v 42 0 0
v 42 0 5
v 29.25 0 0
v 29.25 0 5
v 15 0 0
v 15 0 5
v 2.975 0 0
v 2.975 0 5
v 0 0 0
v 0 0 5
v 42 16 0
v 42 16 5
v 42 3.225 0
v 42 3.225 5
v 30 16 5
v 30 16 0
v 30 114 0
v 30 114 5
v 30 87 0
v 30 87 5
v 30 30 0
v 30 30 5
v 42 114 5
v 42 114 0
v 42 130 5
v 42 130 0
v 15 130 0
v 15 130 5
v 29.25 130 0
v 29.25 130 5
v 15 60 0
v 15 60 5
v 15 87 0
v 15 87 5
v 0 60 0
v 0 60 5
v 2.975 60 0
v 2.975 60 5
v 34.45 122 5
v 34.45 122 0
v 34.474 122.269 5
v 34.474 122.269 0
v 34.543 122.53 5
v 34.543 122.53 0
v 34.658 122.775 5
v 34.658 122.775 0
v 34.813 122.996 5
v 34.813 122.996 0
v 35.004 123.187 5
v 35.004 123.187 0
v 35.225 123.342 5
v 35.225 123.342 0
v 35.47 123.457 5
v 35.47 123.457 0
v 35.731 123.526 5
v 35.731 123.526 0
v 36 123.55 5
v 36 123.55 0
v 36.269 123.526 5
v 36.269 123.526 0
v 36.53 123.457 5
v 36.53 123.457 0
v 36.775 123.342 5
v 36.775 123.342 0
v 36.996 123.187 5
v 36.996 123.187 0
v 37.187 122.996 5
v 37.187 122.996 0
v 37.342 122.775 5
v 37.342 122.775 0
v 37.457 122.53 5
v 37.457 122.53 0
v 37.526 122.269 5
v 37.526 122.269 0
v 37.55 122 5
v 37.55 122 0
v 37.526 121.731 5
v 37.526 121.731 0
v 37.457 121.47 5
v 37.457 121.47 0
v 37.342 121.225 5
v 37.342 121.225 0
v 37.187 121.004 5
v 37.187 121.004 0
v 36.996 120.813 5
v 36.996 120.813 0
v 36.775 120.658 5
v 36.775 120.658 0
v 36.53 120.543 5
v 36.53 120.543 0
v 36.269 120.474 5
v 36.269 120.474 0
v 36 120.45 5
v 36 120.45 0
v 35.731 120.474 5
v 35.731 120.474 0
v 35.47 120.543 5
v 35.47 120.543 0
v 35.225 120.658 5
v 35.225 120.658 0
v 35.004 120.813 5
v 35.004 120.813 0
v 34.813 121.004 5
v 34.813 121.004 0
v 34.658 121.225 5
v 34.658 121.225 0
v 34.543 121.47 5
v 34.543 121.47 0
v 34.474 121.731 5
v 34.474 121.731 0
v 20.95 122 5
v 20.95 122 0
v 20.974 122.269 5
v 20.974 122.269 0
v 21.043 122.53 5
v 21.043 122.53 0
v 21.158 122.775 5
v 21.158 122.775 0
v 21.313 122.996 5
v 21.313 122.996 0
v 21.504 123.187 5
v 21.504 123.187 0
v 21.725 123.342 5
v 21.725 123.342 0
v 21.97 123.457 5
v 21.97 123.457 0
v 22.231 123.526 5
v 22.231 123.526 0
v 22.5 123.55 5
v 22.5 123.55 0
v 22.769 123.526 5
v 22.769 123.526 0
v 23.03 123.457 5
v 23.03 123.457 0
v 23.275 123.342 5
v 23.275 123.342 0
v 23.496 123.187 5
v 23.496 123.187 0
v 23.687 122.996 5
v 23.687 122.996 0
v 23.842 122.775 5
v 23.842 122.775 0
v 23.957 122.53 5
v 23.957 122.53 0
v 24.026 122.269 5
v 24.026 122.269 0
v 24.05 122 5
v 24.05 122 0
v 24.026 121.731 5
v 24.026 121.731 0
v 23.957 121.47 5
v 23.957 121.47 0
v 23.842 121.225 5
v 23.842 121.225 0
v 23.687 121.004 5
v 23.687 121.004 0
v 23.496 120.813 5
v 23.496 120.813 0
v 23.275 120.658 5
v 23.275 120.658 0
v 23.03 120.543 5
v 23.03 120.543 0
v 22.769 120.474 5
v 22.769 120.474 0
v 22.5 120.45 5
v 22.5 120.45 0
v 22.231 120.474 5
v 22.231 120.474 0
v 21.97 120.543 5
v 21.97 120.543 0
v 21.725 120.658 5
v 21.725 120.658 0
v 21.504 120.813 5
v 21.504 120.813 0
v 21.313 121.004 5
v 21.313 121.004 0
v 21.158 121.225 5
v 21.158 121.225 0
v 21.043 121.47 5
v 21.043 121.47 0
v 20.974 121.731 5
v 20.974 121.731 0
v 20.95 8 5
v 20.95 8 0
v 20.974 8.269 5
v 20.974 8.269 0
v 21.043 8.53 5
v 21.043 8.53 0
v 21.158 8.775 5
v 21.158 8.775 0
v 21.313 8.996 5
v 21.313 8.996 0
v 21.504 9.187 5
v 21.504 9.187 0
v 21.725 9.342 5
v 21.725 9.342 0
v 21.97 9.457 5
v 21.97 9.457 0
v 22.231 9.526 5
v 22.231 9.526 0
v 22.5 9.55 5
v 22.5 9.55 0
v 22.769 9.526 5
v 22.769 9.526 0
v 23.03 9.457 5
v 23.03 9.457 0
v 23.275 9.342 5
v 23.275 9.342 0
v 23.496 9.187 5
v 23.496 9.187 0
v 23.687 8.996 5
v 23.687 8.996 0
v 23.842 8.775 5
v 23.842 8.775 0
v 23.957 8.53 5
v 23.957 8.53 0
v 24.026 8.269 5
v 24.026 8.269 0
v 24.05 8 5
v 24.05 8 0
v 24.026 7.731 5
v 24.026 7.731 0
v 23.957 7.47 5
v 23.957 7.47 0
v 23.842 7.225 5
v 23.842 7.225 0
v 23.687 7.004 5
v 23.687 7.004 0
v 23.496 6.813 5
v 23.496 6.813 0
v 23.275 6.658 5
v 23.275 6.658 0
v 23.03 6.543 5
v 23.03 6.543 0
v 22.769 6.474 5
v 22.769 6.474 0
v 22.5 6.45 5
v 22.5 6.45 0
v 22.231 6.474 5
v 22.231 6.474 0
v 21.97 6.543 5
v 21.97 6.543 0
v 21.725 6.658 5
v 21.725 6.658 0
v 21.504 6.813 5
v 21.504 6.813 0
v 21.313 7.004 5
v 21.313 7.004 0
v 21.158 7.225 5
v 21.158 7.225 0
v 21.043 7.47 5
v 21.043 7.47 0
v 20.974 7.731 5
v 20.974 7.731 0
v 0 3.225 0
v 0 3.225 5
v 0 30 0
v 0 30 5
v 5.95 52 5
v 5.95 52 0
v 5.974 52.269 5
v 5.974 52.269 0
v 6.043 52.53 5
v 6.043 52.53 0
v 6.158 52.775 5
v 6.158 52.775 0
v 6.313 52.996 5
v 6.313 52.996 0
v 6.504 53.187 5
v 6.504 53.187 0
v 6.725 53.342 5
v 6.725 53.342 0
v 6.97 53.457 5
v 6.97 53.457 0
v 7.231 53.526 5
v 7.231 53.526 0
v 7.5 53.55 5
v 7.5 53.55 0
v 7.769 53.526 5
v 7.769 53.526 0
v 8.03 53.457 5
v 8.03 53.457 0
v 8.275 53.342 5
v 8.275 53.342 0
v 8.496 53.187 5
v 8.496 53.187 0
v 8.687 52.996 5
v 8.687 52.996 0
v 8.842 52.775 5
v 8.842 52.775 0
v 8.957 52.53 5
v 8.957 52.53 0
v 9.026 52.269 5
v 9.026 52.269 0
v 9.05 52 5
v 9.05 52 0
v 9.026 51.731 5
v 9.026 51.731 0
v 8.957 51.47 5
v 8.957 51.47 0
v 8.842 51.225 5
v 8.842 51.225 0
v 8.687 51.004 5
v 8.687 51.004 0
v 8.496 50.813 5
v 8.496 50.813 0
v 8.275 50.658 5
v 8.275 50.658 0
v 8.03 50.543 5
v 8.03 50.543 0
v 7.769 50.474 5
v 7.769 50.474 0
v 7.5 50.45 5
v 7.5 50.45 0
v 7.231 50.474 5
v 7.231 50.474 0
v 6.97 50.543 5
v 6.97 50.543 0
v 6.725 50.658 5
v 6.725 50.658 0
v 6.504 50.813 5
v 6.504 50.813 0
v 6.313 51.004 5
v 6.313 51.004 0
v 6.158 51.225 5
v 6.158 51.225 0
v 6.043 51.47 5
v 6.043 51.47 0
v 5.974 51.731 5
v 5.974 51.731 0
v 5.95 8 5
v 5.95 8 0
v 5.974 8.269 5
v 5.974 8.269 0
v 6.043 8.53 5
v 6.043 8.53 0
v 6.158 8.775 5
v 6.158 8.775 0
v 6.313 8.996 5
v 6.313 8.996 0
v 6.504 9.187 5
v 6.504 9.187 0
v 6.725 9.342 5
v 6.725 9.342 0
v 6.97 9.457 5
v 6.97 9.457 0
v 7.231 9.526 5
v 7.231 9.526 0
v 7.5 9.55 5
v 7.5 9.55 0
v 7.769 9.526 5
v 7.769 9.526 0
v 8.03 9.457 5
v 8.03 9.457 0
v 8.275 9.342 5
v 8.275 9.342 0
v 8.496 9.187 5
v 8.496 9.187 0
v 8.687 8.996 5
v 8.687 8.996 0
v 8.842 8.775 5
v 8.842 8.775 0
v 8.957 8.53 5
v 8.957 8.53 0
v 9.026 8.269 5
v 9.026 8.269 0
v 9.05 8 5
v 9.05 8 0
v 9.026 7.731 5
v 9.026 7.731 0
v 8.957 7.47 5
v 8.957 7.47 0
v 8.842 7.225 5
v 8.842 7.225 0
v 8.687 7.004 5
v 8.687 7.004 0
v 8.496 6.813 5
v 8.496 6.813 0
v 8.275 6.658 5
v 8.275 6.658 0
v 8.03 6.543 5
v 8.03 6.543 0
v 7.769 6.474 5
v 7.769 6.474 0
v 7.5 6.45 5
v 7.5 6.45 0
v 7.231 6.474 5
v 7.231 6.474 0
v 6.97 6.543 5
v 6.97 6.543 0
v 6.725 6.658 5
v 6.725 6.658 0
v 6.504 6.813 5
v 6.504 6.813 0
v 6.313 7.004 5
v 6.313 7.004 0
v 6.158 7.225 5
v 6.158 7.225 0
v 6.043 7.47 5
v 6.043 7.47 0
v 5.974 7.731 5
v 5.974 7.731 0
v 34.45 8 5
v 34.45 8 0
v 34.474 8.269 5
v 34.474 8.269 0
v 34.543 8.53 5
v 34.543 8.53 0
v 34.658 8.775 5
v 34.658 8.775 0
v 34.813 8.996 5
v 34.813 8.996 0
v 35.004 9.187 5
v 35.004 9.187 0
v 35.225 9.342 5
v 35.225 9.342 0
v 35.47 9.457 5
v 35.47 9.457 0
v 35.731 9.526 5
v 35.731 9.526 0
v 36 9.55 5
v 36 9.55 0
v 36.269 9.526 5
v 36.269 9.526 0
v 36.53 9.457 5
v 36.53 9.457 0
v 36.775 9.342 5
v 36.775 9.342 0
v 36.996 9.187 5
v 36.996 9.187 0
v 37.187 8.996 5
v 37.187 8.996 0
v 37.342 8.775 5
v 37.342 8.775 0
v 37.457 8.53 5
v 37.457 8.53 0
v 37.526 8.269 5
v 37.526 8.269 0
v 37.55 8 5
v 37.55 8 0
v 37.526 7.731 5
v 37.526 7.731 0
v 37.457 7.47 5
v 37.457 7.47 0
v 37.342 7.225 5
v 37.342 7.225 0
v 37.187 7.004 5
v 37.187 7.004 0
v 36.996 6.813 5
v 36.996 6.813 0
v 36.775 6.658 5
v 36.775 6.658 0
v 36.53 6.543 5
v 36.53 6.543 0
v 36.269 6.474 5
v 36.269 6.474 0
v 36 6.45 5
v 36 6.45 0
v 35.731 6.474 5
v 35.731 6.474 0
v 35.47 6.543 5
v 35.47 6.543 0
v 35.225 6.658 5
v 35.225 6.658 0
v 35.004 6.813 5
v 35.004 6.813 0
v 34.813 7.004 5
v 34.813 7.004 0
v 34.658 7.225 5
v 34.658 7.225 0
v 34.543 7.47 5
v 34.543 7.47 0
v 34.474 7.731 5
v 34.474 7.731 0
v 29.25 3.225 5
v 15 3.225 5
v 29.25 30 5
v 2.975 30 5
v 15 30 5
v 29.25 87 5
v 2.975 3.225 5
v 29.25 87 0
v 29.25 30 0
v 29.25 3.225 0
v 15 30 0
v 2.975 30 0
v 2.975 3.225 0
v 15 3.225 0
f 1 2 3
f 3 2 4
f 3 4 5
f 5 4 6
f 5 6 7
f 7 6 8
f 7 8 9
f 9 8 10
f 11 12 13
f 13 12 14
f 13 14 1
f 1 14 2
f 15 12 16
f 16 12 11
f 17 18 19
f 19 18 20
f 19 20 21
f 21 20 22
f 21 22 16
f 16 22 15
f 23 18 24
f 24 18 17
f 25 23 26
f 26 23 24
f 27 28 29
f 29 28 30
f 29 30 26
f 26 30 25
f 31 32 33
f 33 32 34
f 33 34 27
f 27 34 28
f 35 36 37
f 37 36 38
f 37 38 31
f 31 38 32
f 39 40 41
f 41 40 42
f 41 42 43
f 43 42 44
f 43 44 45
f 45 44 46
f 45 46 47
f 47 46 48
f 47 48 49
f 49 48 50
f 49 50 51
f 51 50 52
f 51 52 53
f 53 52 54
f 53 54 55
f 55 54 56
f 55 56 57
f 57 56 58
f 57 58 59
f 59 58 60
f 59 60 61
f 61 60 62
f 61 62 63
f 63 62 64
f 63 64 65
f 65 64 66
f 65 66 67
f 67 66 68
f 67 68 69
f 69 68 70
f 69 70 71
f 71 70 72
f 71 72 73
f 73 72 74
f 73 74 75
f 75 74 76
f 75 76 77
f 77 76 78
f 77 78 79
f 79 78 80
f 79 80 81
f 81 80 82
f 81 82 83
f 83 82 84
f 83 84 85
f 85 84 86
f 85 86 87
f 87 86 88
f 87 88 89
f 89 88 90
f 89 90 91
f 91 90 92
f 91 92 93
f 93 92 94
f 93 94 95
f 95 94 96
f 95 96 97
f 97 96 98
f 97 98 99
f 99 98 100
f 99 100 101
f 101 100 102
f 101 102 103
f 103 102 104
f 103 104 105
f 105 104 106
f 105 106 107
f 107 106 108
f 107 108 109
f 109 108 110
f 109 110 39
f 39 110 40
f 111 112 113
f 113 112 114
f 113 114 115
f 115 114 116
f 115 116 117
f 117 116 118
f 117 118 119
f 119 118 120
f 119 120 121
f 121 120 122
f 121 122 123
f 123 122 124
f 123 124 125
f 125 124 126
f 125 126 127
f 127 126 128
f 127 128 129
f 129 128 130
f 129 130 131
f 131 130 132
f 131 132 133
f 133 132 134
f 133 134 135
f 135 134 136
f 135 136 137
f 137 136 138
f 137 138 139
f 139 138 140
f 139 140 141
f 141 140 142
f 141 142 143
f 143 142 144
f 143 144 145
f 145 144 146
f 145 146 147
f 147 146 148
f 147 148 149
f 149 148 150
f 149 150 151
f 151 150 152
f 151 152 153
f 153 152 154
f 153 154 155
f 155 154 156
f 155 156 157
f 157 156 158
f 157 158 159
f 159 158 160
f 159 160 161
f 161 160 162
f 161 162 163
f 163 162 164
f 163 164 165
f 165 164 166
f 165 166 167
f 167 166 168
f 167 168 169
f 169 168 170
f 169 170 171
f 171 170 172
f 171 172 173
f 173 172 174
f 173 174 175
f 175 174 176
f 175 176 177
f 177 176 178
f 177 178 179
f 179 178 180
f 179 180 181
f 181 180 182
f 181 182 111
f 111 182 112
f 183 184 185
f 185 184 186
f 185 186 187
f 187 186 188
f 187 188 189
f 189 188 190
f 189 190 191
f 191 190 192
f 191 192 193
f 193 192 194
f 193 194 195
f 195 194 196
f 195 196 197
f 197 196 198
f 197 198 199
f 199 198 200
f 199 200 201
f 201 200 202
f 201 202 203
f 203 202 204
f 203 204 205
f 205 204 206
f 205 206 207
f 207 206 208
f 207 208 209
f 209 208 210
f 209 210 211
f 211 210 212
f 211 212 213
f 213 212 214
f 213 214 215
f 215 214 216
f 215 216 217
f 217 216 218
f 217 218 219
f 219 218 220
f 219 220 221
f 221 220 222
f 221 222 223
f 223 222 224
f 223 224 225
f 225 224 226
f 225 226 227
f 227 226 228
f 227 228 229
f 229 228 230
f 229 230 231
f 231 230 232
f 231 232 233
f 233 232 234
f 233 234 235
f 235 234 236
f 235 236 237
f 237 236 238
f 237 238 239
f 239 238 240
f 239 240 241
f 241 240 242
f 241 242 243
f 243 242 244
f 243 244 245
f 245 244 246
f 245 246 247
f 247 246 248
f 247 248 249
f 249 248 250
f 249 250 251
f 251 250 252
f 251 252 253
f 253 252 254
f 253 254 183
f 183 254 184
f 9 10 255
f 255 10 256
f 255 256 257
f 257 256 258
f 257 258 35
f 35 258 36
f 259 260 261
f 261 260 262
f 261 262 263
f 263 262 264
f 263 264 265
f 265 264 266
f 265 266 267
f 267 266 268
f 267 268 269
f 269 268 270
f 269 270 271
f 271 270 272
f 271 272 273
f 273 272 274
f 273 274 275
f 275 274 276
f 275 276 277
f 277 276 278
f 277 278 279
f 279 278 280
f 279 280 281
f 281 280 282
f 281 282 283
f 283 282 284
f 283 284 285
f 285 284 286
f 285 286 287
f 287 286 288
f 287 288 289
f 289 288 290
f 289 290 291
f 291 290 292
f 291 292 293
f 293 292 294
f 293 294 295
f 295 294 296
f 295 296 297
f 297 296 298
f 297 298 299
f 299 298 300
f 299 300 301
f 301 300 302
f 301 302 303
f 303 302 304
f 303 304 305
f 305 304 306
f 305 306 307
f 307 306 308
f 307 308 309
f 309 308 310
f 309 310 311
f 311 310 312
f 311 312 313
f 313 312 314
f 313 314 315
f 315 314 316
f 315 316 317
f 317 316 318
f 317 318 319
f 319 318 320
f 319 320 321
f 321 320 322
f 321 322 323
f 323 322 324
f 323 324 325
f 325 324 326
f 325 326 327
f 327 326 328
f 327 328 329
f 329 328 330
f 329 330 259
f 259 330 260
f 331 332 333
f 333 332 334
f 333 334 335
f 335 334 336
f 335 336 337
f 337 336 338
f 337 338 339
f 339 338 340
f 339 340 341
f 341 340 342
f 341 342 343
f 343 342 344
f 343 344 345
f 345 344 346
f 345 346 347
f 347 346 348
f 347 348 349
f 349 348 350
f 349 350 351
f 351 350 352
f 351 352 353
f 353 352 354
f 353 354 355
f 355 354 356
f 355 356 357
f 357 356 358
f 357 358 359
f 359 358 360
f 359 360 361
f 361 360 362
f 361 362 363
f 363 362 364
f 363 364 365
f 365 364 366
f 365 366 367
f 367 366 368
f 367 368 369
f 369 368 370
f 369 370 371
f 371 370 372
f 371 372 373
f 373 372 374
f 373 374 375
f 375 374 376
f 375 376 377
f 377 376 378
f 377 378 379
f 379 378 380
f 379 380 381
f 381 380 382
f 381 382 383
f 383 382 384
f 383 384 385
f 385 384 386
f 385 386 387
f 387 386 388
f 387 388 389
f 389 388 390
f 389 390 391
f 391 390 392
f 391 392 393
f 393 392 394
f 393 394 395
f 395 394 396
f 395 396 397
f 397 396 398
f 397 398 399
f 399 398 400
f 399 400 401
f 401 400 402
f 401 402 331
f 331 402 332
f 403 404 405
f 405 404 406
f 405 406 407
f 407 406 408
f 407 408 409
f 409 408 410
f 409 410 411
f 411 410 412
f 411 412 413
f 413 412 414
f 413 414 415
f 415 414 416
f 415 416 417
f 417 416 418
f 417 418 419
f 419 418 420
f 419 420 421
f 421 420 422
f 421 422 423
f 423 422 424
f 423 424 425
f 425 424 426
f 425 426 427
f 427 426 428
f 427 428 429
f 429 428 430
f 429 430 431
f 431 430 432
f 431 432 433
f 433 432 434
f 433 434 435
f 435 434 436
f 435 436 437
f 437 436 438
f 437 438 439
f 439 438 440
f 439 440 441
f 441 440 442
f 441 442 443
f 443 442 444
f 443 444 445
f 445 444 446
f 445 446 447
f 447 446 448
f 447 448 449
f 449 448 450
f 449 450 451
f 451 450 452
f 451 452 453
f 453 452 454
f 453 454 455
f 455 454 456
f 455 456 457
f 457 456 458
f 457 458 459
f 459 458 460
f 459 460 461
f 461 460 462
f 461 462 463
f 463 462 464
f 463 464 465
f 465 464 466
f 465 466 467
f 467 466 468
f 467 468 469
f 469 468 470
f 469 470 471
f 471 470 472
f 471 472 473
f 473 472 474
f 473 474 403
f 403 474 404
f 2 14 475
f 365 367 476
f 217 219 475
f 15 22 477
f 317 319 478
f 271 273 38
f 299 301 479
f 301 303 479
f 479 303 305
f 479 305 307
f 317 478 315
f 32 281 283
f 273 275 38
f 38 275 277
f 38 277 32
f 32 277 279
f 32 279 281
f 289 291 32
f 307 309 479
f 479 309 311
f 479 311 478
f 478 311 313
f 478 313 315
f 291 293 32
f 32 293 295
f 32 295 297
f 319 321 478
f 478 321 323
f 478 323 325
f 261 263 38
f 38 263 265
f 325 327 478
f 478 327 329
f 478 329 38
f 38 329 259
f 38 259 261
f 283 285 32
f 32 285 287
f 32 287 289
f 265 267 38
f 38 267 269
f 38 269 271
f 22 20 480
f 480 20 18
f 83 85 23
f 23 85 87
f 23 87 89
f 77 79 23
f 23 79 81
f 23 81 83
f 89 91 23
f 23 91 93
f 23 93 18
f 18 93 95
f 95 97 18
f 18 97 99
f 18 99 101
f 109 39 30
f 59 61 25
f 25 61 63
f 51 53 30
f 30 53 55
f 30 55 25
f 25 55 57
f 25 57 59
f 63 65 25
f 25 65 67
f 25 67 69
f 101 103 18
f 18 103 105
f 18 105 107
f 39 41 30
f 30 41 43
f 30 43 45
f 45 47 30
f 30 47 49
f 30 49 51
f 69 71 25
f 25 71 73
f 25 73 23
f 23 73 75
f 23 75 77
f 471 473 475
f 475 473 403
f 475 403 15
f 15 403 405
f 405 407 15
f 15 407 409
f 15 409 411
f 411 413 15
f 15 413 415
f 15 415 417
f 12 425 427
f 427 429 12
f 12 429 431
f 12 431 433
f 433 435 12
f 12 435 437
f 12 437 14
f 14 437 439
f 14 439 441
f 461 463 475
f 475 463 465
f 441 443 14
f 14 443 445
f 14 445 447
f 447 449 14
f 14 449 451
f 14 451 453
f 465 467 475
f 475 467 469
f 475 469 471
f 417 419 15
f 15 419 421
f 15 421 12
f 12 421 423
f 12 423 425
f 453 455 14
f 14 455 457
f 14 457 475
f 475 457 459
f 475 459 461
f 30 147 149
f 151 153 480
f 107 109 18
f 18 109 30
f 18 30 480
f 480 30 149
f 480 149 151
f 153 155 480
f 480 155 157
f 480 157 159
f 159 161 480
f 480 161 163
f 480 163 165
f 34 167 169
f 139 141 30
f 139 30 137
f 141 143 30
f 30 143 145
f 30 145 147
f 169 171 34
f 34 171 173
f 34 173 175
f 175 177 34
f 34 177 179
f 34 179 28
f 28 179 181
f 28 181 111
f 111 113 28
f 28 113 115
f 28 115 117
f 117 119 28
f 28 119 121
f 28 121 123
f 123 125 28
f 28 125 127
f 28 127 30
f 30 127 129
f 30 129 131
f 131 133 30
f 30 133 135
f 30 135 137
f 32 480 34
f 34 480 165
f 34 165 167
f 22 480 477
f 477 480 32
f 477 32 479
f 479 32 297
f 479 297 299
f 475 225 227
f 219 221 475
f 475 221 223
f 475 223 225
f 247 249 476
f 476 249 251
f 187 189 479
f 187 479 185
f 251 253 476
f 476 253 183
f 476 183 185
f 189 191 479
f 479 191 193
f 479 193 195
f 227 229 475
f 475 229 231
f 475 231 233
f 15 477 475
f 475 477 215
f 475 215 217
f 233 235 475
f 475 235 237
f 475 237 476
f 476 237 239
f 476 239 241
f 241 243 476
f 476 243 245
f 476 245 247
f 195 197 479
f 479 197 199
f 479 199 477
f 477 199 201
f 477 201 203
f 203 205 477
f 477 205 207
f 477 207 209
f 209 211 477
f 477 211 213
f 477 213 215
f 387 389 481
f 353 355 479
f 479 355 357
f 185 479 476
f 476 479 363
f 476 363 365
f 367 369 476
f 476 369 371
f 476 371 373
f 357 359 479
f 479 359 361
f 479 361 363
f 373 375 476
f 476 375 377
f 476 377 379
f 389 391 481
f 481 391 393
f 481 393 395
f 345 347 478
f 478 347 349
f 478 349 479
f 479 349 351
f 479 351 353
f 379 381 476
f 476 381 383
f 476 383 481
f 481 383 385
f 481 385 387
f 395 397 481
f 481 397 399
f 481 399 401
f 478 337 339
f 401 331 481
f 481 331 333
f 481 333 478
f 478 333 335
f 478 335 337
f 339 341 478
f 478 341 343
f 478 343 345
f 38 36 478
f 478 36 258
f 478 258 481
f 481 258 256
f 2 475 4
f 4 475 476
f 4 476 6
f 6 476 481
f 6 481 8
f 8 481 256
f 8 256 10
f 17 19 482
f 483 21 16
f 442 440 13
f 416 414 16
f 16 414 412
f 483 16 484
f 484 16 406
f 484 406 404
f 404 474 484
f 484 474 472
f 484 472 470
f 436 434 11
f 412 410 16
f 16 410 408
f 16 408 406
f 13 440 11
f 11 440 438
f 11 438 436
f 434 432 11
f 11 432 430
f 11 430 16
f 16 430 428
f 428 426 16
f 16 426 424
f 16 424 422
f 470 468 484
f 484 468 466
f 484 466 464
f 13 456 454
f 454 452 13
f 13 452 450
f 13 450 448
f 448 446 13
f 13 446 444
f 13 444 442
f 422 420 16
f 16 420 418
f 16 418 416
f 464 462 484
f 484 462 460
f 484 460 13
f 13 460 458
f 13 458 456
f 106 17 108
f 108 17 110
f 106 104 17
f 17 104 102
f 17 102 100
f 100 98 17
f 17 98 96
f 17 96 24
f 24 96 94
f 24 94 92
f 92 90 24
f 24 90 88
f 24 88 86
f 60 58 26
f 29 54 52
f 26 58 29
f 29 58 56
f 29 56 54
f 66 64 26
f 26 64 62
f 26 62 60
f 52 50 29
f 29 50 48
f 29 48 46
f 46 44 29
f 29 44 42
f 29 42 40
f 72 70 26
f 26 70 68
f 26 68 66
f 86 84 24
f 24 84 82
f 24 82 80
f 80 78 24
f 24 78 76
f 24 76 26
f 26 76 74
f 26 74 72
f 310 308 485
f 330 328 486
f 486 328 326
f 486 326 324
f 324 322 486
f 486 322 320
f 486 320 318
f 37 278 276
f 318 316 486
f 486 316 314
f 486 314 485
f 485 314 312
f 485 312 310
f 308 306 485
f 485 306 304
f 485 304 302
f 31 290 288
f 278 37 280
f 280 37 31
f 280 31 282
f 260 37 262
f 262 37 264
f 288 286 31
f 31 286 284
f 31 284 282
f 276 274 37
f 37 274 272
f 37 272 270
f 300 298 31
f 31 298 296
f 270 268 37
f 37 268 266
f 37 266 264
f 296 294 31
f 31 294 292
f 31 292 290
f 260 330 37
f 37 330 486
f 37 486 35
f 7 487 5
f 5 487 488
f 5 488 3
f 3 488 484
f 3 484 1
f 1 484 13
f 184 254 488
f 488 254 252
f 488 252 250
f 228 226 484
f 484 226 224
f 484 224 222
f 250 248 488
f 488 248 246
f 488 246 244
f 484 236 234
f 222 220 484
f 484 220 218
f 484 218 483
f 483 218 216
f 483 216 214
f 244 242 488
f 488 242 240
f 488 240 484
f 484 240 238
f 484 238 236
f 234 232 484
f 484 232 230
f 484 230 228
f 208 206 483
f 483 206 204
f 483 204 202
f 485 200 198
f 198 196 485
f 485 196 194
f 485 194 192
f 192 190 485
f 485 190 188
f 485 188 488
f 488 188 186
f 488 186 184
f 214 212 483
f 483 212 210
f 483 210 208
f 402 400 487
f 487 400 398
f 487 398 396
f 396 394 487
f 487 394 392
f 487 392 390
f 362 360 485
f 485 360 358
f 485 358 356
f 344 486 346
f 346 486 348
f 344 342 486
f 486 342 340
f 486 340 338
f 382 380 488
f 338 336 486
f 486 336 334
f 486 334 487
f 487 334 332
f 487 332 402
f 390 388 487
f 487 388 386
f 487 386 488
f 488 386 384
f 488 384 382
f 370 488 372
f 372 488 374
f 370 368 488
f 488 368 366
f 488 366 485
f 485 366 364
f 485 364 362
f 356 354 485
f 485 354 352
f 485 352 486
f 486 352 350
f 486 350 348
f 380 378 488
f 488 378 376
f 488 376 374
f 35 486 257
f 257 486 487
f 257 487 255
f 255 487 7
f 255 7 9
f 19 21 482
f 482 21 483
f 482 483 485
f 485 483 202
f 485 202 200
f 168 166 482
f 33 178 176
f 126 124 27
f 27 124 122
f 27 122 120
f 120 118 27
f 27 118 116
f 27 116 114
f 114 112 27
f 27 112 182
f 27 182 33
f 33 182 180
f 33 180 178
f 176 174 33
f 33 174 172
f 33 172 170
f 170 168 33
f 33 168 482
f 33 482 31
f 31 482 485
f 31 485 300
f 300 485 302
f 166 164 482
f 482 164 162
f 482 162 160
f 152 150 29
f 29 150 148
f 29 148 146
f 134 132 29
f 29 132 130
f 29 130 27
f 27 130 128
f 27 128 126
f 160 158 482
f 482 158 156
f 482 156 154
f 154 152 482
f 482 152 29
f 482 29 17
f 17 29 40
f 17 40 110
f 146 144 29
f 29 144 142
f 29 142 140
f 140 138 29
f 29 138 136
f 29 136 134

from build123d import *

# Parameters (mm, degrees)
SKETCH1_W           = 15
SKETCH1_H           = 60
SKETCH1_R           = 1.55
SKETCH1_W_2         = 12
SKETCH1_H_2         = 16
BOSS_EXTRUDE1_DEPTH = 5


with BuildPart() as part:
    # Sketch1 → Boss-Extrude1 (new body)
    # profile 1 of 4: a face of its own
    with BuildSketch(Plane.XY):
        with Locations((7.5, 30)):
            Rectangle(SKETCH1_W, SKETCH1_H)
        with Locations((7.5, 8)):
            Circle(SKETCH1_R, mode=Mode.SUBTRACT)
        with Locations((7.5, 52)):
            Circle(SKETCH1_R, mode=Mode.SUBTRACT)
    # profile 2 of 4: a face of its own
    with BuildSketch(Plane.XY):
        Polygon((15, 60), (15, 0), (30, 0), (30, 16), (30, 114), (30, 130), (15, 130), align=None)
        with Locations((22.5, 8)):
            Circle(SKETCH1_R, mode=Mode.SUBTRACT)
        with Locations((22.5, 122)):
            Circle(SKETCH1_R, mode=Mode.SUBTRACT)
    # profile 3 of 4: a face of its own
    with BuildSketch(Plane.XY):
        with Locations((36, 8)):
            Rectangle(SKETCH1_W_2, SKETCH1_H_2)
        with Locations((36, 8)):
            Circle(SKETCH1_R, mode=Mode.SUBTRACT)
    # profile 4 of 4: a face of its own
    with BuildSketch(Plane.XY):
        with Locations((36, 122)):
            Rectangle(SKETCH1_W_2, SKETCH1_H_2)
        with Locations((36, 122)):
            Circle(SKETCH1_R, mode=Mode.SUBTRACT)
    extrude(amount=BOSS_EXTRUDE1_DEPTH)


solid = part.part
